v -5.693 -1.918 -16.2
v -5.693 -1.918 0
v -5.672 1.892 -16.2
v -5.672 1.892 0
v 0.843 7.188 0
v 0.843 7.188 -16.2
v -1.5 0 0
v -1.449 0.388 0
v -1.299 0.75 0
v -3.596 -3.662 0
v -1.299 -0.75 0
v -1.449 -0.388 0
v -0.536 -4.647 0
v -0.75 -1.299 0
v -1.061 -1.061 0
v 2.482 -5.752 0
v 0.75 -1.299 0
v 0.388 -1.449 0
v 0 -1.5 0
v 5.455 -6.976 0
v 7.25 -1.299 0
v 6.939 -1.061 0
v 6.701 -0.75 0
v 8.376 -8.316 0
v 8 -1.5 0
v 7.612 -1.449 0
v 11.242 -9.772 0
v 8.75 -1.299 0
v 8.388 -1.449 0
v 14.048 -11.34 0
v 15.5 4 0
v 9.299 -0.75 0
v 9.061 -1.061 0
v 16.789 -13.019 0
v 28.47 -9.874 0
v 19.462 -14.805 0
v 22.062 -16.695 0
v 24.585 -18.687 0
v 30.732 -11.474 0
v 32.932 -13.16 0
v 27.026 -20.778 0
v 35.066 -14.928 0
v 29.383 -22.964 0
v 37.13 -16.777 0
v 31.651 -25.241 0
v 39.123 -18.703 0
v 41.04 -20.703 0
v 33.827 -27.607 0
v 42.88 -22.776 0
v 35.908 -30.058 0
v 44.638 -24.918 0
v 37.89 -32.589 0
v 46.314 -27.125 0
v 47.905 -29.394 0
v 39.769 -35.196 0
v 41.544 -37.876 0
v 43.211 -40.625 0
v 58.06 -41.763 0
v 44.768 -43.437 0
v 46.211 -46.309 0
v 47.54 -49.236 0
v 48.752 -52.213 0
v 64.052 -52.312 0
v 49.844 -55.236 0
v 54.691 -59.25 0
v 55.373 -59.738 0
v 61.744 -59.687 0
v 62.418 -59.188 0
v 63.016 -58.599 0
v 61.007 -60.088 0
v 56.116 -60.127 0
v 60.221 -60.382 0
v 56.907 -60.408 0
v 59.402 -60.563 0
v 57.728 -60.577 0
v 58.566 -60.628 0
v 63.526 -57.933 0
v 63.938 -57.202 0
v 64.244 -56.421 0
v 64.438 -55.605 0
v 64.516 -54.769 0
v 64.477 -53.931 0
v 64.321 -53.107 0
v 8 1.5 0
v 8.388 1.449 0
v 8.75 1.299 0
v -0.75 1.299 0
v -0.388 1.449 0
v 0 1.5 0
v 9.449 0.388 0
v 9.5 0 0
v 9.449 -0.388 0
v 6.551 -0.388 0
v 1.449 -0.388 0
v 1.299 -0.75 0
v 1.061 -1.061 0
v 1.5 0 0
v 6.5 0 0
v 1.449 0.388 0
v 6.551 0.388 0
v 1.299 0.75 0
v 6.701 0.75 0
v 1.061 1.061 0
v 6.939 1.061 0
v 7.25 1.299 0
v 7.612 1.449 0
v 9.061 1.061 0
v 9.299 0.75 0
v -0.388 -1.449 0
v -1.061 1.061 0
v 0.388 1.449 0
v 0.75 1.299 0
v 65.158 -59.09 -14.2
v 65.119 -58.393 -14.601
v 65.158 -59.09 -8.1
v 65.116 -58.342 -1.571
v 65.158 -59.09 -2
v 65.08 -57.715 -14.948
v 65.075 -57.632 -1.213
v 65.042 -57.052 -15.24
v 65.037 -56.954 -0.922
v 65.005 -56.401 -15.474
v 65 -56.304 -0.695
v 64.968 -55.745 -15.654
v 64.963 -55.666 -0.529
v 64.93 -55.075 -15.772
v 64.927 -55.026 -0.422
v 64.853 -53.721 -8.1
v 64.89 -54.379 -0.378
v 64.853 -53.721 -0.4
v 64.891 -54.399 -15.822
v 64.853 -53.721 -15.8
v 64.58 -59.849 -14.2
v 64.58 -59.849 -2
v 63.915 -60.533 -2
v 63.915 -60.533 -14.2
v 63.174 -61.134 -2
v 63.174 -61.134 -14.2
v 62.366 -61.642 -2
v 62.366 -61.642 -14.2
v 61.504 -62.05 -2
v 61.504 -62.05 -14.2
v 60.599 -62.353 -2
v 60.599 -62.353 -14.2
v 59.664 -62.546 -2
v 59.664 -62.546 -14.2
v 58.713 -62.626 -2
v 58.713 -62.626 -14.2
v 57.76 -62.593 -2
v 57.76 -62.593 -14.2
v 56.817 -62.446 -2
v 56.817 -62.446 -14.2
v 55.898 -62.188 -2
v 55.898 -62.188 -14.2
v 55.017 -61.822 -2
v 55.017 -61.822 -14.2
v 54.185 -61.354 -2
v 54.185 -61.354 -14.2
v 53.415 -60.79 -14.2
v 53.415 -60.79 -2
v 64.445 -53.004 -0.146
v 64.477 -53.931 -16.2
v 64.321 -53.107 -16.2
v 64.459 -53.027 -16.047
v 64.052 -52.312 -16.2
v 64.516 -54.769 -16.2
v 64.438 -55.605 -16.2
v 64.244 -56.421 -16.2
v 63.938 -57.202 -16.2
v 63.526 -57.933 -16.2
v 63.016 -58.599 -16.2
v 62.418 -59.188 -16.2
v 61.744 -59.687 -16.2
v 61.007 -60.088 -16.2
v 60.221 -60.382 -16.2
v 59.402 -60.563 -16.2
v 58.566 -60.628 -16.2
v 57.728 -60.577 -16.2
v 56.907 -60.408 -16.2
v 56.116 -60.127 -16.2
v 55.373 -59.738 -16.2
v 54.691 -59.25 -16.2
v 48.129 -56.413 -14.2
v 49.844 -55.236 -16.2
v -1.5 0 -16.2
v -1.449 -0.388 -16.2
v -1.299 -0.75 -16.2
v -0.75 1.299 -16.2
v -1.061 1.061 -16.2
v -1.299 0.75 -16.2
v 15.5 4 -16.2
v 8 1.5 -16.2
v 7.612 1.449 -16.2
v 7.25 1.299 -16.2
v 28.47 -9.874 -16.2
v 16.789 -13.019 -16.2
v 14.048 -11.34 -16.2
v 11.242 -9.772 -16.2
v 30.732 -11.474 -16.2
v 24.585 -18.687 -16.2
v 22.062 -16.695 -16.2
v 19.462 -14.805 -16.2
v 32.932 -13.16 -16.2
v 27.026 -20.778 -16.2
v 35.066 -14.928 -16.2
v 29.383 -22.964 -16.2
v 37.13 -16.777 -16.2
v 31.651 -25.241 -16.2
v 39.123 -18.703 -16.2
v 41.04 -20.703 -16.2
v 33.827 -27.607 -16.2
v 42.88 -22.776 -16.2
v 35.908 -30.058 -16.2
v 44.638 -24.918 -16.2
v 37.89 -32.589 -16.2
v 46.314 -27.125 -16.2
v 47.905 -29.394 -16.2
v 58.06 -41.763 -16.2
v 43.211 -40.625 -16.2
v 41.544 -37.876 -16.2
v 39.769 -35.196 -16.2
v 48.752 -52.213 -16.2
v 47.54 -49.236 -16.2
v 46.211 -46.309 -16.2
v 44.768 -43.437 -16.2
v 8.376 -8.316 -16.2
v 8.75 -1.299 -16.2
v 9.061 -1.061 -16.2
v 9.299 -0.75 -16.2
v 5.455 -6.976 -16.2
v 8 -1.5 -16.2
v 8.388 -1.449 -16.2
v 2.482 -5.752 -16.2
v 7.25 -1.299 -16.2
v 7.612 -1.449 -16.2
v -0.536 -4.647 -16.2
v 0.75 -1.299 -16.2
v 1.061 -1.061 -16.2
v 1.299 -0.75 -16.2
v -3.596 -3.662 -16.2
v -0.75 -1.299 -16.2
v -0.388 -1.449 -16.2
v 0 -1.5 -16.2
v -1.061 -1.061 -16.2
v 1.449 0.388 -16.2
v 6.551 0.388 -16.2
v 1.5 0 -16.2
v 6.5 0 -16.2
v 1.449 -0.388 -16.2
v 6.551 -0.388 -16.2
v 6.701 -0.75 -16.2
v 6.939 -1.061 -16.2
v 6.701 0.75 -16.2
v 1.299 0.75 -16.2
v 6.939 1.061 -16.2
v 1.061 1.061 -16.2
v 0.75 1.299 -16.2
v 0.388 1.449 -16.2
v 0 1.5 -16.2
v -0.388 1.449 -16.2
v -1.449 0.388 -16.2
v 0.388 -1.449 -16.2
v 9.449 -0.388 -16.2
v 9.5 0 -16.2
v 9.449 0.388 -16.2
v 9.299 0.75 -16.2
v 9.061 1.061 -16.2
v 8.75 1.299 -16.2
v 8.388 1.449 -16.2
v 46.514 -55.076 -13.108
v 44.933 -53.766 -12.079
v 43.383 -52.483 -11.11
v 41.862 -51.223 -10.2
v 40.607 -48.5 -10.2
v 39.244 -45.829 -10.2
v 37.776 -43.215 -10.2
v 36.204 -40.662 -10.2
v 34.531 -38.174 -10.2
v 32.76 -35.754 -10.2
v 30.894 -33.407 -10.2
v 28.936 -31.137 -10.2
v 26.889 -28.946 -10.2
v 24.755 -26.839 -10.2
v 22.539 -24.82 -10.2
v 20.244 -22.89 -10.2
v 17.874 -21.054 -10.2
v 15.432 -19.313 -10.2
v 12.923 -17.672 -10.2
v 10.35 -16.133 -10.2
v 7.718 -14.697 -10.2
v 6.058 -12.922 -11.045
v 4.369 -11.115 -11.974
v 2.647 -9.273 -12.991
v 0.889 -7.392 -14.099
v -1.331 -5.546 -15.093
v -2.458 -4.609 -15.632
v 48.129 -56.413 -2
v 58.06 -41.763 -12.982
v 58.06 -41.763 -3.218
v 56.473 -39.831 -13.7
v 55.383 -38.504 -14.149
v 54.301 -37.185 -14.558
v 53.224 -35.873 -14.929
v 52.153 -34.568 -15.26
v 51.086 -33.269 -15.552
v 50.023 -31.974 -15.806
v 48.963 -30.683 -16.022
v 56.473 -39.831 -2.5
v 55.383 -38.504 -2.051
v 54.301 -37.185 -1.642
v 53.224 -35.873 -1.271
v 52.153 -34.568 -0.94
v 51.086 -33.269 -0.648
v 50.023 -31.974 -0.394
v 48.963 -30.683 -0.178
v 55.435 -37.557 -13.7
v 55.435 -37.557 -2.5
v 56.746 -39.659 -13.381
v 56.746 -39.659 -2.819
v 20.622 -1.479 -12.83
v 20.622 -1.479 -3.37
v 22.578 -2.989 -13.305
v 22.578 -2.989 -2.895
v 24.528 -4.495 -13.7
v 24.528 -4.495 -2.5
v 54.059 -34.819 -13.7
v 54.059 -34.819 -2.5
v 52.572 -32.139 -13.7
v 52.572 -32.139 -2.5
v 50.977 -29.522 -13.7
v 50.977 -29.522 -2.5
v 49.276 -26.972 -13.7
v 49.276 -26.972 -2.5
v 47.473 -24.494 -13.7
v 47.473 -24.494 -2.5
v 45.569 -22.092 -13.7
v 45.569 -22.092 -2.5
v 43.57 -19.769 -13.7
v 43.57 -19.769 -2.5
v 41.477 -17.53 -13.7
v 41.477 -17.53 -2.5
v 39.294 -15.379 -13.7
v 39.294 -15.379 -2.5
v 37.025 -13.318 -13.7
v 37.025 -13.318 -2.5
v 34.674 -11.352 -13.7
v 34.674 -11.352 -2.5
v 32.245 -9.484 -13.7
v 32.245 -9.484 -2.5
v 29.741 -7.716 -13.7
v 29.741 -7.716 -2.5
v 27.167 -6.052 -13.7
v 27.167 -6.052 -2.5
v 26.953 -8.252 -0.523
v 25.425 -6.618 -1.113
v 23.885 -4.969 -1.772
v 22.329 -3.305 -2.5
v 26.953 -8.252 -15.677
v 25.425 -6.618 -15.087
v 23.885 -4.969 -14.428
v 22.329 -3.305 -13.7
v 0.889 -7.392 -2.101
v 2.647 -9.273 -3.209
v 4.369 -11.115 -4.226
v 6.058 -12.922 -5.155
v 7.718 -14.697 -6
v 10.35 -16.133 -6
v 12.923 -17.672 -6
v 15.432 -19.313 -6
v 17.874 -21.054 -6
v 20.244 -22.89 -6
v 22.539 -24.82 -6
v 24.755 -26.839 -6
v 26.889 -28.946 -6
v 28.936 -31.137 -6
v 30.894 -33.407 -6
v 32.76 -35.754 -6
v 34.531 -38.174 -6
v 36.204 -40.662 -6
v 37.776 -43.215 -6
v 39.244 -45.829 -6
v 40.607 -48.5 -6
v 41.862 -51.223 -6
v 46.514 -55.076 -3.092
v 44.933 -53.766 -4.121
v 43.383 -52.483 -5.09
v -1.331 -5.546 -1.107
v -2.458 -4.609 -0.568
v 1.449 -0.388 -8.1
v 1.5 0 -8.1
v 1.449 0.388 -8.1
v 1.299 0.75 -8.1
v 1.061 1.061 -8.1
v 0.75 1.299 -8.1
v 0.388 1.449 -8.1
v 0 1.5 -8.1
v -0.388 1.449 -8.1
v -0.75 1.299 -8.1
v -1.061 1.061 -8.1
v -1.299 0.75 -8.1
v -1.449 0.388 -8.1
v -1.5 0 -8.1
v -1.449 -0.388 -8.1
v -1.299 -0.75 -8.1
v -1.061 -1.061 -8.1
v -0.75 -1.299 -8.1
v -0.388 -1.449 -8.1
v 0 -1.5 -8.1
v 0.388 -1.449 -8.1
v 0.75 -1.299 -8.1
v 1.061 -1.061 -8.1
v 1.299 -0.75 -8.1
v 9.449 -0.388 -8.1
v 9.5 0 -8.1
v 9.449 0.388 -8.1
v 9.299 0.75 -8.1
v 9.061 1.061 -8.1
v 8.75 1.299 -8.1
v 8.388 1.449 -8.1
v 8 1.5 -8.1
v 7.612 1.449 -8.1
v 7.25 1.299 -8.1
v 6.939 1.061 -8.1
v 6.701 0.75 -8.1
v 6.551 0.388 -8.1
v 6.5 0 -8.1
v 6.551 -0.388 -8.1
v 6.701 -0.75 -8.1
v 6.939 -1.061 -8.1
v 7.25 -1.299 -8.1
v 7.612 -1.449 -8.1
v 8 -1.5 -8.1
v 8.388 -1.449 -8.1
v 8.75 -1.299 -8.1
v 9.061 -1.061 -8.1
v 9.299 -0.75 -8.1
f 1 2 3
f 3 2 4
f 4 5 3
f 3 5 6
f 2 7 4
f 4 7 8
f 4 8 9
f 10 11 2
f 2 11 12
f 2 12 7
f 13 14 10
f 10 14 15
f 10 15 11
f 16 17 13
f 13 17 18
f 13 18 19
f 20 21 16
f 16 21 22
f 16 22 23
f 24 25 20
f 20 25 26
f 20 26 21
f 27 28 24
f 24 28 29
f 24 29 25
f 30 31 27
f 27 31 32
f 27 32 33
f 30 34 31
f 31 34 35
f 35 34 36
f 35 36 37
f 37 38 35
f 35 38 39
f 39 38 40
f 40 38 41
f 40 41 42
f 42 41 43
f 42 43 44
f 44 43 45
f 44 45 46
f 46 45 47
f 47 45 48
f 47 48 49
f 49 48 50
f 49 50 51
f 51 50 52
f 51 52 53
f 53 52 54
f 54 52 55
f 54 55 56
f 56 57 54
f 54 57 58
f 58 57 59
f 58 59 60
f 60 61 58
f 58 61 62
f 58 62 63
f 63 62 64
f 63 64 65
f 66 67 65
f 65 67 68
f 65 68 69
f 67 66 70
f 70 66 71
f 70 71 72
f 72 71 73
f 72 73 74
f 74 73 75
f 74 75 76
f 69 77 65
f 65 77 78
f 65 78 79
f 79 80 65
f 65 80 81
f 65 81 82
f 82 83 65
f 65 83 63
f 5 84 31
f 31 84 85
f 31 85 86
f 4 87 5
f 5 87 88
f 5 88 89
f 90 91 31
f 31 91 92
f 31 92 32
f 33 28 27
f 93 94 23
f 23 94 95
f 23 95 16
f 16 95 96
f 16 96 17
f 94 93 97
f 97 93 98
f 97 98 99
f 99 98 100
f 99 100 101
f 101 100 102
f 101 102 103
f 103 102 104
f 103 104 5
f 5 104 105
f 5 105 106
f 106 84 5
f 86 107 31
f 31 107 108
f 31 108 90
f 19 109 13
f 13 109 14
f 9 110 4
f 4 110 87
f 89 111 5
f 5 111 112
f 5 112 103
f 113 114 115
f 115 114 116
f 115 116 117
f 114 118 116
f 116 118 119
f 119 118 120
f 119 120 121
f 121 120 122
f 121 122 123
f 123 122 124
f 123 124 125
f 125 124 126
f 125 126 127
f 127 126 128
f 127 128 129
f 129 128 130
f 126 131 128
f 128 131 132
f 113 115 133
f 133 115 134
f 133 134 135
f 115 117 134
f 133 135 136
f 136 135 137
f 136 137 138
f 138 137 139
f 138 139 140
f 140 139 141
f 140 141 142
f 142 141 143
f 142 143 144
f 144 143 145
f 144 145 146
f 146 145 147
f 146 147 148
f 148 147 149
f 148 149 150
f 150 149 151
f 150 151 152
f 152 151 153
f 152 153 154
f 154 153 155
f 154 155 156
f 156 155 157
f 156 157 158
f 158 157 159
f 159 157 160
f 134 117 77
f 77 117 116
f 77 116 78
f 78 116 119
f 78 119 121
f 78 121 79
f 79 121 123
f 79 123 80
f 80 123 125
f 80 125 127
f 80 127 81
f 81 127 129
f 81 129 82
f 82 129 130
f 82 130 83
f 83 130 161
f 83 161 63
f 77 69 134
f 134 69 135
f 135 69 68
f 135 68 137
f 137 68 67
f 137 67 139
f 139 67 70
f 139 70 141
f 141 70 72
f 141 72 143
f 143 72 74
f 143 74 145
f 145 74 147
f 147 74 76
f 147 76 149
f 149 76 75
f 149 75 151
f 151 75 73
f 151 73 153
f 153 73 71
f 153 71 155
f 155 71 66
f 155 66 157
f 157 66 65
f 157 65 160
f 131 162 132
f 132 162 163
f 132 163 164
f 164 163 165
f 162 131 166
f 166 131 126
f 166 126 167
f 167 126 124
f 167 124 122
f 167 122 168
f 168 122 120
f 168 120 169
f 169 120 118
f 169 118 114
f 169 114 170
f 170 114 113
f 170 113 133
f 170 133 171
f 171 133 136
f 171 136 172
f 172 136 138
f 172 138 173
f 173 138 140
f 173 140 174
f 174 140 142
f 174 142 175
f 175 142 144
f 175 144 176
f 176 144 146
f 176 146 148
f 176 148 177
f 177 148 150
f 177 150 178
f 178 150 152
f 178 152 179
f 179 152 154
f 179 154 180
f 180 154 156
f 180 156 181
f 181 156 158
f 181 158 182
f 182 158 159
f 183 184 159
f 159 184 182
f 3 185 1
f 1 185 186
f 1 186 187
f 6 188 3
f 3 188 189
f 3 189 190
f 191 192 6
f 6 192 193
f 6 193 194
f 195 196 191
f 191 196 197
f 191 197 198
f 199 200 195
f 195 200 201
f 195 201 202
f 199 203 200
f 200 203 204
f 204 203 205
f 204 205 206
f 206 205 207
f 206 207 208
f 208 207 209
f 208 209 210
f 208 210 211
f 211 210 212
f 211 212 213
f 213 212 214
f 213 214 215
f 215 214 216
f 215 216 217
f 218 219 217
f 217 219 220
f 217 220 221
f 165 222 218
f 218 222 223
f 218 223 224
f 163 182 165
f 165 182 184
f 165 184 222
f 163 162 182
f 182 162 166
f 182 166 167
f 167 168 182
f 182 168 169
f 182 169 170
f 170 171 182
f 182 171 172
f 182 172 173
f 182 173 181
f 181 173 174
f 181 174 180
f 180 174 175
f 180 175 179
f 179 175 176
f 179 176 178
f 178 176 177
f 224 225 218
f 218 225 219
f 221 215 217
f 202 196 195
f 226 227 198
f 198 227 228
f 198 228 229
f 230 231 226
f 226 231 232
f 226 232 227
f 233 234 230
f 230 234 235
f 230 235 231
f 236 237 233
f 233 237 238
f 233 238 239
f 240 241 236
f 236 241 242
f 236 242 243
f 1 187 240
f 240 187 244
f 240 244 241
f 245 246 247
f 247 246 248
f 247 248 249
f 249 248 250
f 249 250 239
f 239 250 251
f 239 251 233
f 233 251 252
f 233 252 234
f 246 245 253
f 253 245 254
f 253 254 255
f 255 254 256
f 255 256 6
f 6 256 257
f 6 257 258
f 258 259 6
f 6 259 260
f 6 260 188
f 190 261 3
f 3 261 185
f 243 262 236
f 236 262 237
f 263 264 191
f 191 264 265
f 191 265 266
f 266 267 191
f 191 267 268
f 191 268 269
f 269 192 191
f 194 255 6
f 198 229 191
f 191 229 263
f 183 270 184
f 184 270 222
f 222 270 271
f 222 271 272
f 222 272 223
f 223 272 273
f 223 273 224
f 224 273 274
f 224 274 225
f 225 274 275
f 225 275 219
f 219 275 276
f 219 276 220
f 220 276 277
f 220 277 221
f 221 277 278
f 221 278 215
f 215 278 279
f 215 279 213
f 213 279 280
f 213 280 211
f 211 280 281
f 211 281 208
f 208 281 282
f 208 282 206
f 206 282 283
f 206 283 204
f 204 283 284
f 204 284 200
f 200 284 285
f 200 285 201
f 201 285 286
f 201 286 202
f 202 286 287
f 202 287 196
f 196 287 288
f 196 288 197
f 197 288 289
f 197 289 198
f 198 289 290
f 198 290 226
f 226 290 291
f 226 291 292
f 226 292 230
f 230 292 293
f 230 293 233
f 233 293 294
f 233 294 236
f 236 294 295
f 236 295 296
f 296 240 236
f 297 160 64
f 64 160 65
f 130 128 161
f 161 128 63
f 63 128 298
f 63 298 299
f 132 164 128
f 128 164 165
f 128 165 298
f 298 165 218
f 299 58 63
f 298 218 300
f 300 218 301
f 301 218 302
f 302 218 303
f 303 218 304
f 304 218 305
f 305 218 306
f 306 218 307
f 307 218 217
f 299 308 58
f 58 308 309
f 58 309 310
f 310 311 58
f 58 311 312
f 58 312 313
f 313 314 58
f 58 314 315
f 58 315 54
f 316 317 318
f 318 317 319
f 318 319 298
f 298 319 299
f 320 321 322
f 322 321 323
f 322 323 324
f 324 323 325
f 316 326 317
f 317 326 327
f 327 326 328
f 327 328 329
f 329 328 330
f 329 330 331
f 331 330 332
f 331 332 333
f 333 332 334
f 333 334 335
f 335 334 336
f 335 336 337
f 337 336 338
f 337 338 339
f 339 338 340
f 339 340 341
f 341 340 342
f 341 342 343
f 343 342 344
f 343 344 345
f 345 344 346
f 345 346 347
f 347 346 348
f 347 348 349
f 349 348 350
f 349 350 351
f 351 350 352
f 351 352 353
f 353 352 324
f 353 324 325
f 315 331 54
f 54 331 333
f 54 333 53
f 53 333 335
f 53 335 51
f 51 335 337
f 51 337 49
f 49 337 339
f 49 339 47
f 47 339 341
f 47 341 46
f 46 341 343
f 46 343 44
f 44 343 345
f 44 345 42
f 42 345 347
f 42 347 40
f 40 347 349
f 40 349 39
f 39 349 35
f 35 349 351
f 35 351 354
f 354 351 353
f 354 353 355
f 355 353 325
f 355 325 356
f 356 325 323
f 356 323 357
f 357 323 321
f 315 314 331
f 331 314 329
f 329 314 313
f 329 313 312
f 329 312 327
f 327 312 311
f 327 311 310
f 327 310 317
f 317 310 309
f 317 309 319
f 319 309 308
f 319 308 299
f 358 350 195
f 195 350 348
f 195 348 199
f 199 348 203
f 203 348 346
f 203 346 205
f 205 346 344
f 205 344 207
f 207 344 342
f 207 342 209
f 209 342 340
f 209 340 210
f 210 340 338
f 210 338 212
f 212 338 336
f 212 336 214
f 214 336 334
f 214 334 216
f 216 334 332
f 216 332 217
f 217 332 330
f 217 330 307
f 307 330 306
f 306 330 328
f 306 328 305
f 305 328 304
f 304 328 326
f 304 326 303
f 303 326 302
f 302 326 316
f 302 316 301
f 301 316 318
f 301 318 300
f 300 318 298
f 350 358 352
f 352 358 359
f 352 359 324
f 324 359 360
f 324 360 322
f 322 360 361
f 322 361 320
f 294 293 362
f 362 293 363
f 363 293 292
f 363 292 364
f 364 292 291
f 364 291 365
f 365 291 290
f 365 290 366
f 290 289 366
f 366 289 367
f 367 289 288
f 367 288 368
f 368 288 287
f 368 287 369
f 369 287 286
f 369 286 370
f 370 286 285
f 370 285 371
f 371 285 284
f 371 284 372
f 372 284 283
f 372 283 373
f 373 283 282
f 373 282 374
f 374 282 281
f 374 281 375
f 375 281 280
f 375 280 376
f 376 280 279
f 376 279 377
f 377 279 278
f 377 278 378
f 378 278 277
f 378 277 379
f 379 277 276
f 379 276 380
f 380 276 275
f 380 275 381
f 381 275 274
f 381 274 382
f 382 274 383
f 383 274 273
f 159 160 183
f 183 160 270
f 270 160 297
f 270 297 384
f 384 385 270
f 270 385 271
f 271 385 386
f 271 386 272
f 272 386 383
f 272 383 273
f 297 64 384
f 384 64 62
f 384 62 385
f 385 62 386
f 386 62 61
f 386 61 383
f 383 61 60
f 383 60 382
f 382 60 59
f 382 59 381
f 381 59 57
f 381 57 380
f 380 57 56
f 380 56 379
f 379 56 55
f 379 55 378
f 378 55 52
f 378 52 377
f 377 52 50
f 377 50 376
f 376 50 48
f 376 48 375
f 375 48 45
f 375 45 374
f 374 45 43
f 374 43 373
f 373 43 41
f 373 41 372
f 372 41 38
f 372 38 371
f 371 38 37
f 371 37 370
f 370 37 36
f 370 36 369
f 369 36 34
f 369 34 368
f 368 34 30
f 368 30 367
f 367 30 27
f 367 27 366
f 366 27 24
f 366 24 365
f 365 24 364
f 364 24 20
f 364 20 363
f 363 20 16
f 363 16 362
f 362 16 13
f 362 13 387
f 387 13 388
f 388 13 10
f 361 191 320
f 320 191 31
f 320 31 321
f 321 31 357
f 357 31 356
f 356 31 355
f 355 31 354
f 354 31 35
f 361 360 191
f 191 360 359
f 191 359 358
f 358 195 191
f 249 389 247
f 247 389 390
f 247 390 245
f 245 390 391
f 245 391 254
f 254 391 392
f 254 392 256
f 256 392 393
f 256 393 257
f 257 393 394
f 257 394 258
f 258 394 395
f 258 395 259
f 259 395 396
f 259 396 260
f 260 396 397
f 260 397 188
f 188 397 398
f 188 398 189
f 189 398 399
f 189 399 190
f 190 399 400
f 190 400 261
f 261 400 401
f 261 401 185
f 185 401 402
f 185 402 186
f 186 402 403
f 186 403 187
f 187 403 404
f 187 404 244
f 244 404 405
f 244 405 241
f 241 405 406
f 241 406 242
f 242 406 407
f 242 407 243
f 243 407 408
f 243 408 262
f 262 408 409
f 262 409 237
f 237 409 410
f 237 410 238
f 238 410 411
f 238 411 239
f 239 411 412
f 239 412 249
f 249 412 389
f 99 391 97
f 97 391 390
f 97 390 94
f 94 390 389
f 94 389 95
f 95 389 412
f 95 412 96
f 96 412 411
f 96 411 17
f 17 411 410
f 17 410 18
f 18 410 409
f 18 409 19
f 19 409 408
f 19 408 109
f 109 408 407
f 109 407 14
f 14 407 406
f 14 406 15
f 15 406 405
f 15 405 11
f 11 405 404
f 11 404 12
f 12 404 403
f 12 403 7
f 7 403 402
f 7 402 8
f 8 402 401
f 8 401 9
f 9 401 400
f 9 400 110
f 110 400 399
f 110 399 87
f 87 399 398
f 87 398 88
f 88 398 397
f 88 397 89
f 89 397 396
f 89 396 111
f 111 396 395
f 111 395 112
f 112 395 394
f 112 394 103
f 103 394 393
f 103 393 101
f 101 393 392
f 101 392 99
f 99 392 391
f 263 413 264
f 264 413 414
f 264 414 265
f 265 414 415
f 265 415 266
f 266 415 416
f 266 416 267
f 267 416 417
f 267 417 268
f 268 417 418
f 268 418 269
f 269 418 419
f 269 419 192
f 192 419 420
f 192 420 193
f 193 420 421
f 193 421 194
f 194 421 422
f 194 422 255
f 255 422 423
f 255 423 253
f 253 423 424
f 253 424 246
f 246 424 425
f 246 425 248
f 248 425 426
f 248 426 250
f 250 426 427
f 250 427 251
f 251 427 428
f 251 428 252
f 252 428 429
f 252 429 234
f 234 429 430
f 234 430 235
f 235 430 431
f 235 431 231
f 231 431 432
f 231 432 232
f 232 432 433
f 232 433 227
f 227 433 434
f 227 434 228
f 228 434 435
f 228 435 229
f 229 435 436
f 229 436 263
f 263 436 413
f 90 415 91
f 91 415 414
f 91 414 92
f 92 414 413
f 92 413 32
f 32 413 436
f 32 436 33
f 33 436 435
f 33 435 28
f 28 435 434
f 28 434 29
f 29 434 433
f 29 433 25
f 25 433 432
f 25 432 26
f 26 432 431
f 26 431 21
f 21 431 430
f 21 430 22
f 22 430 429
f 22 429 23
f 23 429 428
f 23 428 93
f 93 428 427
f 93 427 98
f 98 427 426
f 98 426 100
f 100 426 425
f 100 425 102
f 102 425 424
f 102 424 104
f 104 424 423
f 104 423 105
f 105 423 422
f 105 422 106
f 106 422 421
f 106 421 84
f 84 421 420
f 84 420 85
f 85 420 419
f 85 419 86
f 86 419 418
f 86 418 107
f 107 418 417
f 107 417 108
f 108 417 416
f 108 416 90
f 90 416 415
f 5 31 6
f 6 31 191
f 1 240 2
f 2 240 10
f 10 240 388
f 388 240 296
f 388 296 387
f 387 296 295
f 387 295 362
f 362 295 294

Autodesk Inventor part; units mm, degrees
ref_plane "YZ Plane" through (0, 0, 0) normal (1, 0, 0) x (0, 1, 0)
ref_plane "XZ Plane" through (0, 0, 0) normal (0, 1, 0) x (-1, 0, 0)
ref_plane "XY Plane" through (0, 0, 0) normal (0, 0, 1) x (1, 0, 0)
sketch "Sketch1" plane through (0, 0, 0) normal (0, 0, 1) x (1, 0, 0)
  circle A0 centre (0, 0) radius 1.5
  line L0 (0, 0) -> (8, 0)
  circle A1 centre (8, 0) radius 1.5
  line L1 (8, 0) -> (15.5, 0)
  line L2 (15.5, 0) -> (15.5, 4)
  line L3 (15.5, 0) -> (15.5, -4)
  line L4 (15.5, 4) -> (0.8426, 7.1878)
  line L5 (15.5, -4) -> (0.8886, -7.3921)
  line L6 (0, 0) -> (-8, 0)
  line L7 (0.8886, -7.3921) -> (-8, 0)
  line L8 (-8, 0) -> (0.8426, 7.1878)
  dimension "d0" = 3
  dimension "d1" = 8
  dimension "d2" = 3
  dimension "d3" = 7.5
  dimension "d4" = 4
  dimension "d5" = 4
  dimension "d6" = 102.27
  dimension "d7" = 103.07
  dimension "d8" = 15
  dimension "d9" = 15
  dimension "d10" = 8
extrude "Extrusion1" add sketch "Sketch1" against normal blind 16.2 contours L0 A1 L1 L3 L5 L7 L6 A0 | A0 L6 L8 L4 L2 L1 A1 L0
sketch "Sketch2" plane through (0, 0, 0) normal (0, 0, 1) x (1, 0, 0)
  line L0 (15.5, 4) -> (0.8426, 7.1878) projected
  line L1 (0.8426, 7.1878) -> (-8, 0) projected
  line L2 (-8, 0) -> (0.8886, -7.3921) projected
  line L3 (0.8886, -7.3921) -> (15.5, -4) projected
  line L4 (15.5, -4) -> (15.5, 4) projected
  circle A0 centre (8, 0) radius 1.5 projected
  circle A1 centre (0, 0) radius 1.5 projected
  line L5 (0.8886, -7.3921) -> (7.7175, -14.6973)
  line L6 (15.5, 4) -> (22.3289, -3.3052)
  arc A2 (41.8621, -51.2233) -> (7.7175, -14.6973) centre (-26.8658, -81.248) ccw
  arc A3 (56.4735, -39.8312) -> (22.3289, -3.3052) centre (-12.2544, -69.8559) ccw
  line L7 (41.8621, -51.2233) -> (53.4151, -60.7903)
  arc A4 (53.4151, -60.7903) -> (63.4535, -48.3329) centre (58.5175, -54.6287) ccw
  line L8 (63.4535, -48.3329) -> (56.4735, -39.8312)
  dimension "d13" = 10
  dimension "d14" = 60
  dimension "d15" = 10
  dimension "d17" = 50
  dimension "d18" = 75
  dimension "d19" = 50
  dimension "d20" = 75
  dimension "d29" = 15
  dimension "d30" = 11
  dimension "d31" = 8
  dimension "d32" = 141.656
extrude "Extrusion2" add sketch "Sketch2" against normal up to surface (16.2 mm away) contours L6 A3 L8 A4 L7 A2 L5 L3 L4
chamfer "Chamfer2" distance 6 angle 45 2 edges at (27.9232, -30.0312, 0) (27.9232, -30.0312, -16.2)
chamfer "Chamfer3" distance 2.5 angle 45 4 edges at (42.5346, -18.6391, -16.2) (42.5346, -18.6391, 0) (22.3289, -3.3052, -8.1) (56.4735, -39.8312, -8.1)
chamfer "Chamfer4" distance 8.5 angle 45 1 edges at (63.4535, -48.3329, -8.1)
chamfer "Chamfer5" distance 2 angle 45 4 edges at (61.1284, -62.1906, 0) (52.1804, -59.7678, 0) (61.1284, -62.1906, -16.2) (52.1804, -59.7678, -16.2)
chamfer "Chamfer6" distance 3 angle 45 1 edges at (66.3346, -56.3297, -8.1)
chamfer "Chamfer7" distance 3 angle 45 1 edges at (-8, 0, -8.1)
properties part number "Tarsus"
